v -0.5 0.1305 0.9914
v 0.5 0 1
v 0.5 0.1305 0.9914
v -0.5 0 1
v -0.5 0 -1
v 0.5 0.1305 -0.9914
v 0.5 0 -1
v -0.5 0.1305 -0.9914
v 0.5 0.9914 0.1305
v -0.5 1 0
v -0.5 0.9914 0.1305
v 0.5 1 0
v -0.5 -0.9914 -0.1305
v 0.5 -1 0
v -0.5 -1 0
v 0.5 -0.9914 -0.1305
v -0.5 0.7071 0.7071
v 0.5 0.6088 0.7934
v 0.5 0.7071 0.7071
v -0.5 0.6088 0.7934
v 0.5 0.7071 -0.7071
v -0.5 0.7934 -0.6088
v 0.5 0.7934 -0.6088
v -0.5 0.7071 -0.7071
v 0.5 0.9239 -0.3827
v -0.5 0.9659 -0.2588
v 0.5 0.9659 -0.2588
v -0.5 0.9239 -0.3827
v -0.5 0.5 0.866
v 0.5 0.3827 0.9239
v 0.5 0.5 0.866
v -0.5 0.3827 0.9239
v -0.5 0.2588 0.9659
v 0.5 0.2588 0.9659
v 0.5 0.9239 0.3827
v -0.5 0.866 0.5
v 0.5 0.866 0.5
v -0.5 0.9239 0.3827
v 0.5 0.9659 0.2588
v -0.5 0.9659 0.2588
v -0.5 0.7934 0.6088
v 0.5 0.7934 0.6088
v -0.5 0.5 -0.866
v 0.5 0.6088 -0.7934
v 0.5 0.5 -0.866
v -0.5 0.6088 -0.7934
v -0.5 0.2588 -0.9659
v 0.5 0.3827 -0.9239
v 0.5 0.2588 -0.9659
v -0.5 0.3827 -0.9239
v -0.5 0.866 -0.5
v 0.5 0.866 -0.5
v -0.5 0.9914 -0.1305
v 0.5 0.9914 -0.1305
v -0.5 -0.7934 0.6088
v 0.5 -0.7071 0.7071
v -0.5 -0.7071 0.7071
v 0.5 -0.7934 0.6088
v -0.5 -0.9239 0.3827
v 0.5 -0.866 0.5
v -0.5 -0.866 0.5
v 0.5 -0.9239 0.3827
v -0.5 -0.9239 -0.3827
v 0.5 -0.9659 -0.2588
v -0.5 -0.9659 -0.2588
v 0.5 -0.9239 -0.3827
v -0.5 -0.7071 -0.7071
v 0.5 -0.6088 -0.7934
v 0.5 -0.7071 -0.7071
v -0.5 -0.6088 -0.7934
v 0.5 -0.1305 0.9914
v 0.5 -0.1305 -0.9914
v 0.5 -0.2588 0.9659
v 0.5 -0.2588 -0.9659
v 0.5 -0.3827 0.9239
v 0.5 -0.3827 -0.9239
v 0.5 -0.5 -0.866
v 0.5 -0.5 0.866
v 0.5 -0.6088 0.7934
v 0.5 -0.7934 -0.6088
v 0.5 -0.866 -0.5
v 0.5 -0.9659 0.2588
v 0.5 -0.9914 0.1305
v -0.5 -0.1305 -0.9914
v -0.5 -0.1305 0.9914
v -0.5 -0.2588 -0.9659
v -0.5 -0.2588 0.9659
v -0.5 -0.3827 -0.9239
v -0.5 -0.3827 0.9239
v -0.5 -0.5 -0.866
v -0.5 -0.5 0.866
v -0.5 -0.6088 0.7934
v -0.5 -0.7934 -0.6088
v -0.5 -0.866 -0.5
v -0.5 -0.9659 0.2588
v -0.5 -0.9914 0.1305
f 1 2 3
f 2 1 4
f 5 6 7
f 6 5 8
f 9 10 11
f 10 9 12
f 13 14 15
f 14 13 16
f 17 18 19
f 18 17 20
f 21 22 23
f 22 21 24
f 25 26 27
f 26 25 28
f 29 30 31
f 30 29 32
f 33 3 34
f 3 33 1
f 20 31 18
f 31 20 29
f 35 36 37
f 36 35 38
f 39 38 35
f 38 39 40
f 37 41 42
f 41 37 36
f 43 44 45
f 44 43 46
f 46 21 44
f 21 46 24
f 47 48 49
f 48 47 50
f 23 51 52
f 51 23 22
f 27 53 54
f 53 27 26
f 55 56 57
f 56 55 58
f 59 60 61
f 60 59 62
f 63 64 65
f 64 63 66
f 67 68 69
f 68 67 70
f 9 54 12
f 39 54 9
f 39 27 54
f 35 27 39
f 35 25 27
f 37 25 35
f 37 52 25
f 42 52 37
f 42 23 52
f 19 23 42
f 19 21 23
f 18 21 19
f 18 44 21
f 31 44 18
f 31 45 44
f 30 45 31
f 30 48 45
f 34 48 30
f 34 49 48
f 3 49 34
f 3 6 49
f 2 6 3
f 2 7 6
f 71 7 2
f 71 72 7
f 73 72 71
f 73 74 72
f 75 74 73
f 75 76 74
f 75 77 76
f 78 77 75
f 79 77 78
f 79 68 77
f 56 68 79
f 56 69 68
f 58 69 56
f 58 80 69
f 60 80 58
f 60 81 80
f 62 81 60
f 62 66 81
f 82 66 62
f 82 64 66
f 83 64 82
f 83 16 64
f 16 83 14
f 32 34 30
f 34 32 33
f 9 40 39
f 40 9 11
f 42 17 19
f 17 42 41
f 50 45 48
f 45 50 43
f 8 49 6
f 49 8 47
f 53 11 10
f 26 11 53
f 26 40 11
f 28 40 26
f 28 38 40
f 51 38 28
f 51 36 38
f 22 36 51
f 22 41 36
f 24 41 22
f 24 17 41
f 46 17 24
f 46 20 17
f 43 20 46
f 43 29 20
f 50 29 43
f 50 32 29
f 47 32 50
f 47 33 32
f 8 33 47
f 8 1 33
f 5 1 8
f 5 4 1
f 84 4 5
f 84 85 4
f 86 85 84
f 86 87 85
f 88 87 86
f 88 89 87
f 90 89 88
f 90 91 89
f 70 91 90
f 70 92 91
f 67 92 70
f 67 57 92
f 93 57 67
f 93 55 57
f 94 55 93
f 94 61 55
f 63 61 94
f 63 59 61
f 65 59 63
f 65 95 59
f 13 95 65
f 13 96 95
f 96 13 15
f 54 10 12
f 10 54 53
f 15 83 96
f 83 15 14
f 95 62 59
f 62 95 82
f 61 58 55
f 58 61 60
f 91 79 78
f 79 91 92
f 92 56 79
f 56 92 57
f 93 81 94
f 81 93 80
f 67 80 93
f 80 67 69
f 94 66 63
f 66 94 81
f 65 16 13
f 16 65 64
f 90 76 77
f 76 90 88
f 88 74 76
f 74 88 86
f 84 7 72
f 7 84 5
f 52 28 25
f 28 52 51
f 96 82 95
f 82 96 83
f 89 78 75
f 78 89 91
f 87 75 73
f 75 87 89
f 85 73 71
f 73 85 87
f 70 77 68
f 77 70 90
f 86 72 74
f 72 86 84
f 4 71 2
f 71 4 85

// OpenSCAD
// file: ../../lib/nutsnbolts/data-access.scad
// Norm Nuts and Bolts - a OpenSCAD library
// Copyright (C) 2012  Johannes Kneer

// This program is free software: you can redistribute it and/or modify
// it under the terms of the GNU General Public License as published by
// the Free Software Foundation, either version 3 of the License, or
// (at your option) any later version.

// This program is distributed in the hope that it will be useful,
// but WITHOUT ANY WARRANTY; without even the implied warranty of
// MERCHANTABILITY or FITNESS FOR A PARTICULAR PURPOSE.  See the
// GNU General Public License for more details.

// You should have received a copy of the GNU General Public License
// along with this program.  If not, see <http://www.gnu.org/licenses/>.


// DATABASE ACCESS FUNCTIONS AND CONSTANTS



// == CONSTANTS ==

// screw table access keys
_NB_S_DESC            = 0;
_NB_S_FAMKEY			    = 1;
_NB_S_LENGTH          = 2;
_NB_S_NOTHREAD_LENGTH = 3;

_NB_F_DESC			      = 0;
_NB_F_OUTER_DIA       = 1;
_NB_F_INNER_DIA       = 2;
_NB_F_LEAD            = 3;
_NB_F_KEY             = 4;
_NB_F_KEY_DEPTH       = 5;
_NB_F_HEAD_HEIGHT     = 6;
_NB_F_HEAD_DIA        = 7;
_NB_F_NUT_KEY         = 8;
_NB_F_NUT_HEIGHT      = 9;
_NB_F_PITCH_FINE      = 10;
_NB_F_PITCH_MEDIUM    = 11;
_NB_F_PITCH_COARSE    = 12;


// == FUNCTIONS ==

// _get_screw("descriptor")   with descriptor = M8x25
//   find the line for a general object in the data matrix

function _get_screw(n) = data_screw[search([n], data_screw)[0]];
function _get_screw_fam(n) = data_screw_fam[search([_get_screw(n)[_NB_S_FAMKEY]], data_screw_fam)[0]];

function _get_fam(n) = data_screw_fam[search([n], data_screw_fam)[0]];


// _get_XXXXX("descriptor") functions
// find a single property in the database

function _get_desc(n)        = _get_screw(n)[_NB_S_DESC];
function _get_famkey(n)         = _get_screw(n)[_NB_S_FAMKEY];
function _get_length(n)      = _get_screw(n)[_NB_S_LENGTH];
function _get_nt_length(n)   = _get_screw(n)[_NB_S_NOTHREAD_LENGTH];

function _get_outer_dia(n)   = _get_screw_fam(n)[_NB_F_OUTER_DIA];
function _get_inner_dia(n)   = _get_screw_fam(n)[_NB_F_INNER_DIA];
function _get_lead(n)        = _get_screw_fam(n)[_NB_F_LEAD];
function _get_head_height(n) = _get_screw_fam(n)[_NB_F_HEAD_HEIGHT];
function _get_head_dia(n)    = _get_screw_fam(n)[_NB_F_HEAD_DIA];
function _get_nut_key(n)     = _get_screw_fam(n)[_NB_F_NUT_KEY];
function _get_nut_height(n)  = _get_screw_fam(n)[_NB_F_NUT_HEIGHT];
function _get_fine_pitch(n)  = _get_screw_fam(n)[_NB_F_PITCH_FINE];
function _get_medium_pitch(n)  = _get_screw_fam(n)[_NB_F_PITCH_MEDIUM];
function _get_coarse_pitch(n)  = _get_screw_fam(n)[_NB_F_PITCH_COARSE];
// main file
/**********************************************************************************************************************
 **
 ** parts/vitamins/screw_M5x65.scad
 **
 ** This file renders a screw of the dimensions specified by the file name.
 **
 **********************************************************************************************************************/

include <../../lib/nutsnbolts/cyl_head_bolt.scad>;

$fn = 48;
rotate([0, -90, 0])
	screw("M5x65"); 
